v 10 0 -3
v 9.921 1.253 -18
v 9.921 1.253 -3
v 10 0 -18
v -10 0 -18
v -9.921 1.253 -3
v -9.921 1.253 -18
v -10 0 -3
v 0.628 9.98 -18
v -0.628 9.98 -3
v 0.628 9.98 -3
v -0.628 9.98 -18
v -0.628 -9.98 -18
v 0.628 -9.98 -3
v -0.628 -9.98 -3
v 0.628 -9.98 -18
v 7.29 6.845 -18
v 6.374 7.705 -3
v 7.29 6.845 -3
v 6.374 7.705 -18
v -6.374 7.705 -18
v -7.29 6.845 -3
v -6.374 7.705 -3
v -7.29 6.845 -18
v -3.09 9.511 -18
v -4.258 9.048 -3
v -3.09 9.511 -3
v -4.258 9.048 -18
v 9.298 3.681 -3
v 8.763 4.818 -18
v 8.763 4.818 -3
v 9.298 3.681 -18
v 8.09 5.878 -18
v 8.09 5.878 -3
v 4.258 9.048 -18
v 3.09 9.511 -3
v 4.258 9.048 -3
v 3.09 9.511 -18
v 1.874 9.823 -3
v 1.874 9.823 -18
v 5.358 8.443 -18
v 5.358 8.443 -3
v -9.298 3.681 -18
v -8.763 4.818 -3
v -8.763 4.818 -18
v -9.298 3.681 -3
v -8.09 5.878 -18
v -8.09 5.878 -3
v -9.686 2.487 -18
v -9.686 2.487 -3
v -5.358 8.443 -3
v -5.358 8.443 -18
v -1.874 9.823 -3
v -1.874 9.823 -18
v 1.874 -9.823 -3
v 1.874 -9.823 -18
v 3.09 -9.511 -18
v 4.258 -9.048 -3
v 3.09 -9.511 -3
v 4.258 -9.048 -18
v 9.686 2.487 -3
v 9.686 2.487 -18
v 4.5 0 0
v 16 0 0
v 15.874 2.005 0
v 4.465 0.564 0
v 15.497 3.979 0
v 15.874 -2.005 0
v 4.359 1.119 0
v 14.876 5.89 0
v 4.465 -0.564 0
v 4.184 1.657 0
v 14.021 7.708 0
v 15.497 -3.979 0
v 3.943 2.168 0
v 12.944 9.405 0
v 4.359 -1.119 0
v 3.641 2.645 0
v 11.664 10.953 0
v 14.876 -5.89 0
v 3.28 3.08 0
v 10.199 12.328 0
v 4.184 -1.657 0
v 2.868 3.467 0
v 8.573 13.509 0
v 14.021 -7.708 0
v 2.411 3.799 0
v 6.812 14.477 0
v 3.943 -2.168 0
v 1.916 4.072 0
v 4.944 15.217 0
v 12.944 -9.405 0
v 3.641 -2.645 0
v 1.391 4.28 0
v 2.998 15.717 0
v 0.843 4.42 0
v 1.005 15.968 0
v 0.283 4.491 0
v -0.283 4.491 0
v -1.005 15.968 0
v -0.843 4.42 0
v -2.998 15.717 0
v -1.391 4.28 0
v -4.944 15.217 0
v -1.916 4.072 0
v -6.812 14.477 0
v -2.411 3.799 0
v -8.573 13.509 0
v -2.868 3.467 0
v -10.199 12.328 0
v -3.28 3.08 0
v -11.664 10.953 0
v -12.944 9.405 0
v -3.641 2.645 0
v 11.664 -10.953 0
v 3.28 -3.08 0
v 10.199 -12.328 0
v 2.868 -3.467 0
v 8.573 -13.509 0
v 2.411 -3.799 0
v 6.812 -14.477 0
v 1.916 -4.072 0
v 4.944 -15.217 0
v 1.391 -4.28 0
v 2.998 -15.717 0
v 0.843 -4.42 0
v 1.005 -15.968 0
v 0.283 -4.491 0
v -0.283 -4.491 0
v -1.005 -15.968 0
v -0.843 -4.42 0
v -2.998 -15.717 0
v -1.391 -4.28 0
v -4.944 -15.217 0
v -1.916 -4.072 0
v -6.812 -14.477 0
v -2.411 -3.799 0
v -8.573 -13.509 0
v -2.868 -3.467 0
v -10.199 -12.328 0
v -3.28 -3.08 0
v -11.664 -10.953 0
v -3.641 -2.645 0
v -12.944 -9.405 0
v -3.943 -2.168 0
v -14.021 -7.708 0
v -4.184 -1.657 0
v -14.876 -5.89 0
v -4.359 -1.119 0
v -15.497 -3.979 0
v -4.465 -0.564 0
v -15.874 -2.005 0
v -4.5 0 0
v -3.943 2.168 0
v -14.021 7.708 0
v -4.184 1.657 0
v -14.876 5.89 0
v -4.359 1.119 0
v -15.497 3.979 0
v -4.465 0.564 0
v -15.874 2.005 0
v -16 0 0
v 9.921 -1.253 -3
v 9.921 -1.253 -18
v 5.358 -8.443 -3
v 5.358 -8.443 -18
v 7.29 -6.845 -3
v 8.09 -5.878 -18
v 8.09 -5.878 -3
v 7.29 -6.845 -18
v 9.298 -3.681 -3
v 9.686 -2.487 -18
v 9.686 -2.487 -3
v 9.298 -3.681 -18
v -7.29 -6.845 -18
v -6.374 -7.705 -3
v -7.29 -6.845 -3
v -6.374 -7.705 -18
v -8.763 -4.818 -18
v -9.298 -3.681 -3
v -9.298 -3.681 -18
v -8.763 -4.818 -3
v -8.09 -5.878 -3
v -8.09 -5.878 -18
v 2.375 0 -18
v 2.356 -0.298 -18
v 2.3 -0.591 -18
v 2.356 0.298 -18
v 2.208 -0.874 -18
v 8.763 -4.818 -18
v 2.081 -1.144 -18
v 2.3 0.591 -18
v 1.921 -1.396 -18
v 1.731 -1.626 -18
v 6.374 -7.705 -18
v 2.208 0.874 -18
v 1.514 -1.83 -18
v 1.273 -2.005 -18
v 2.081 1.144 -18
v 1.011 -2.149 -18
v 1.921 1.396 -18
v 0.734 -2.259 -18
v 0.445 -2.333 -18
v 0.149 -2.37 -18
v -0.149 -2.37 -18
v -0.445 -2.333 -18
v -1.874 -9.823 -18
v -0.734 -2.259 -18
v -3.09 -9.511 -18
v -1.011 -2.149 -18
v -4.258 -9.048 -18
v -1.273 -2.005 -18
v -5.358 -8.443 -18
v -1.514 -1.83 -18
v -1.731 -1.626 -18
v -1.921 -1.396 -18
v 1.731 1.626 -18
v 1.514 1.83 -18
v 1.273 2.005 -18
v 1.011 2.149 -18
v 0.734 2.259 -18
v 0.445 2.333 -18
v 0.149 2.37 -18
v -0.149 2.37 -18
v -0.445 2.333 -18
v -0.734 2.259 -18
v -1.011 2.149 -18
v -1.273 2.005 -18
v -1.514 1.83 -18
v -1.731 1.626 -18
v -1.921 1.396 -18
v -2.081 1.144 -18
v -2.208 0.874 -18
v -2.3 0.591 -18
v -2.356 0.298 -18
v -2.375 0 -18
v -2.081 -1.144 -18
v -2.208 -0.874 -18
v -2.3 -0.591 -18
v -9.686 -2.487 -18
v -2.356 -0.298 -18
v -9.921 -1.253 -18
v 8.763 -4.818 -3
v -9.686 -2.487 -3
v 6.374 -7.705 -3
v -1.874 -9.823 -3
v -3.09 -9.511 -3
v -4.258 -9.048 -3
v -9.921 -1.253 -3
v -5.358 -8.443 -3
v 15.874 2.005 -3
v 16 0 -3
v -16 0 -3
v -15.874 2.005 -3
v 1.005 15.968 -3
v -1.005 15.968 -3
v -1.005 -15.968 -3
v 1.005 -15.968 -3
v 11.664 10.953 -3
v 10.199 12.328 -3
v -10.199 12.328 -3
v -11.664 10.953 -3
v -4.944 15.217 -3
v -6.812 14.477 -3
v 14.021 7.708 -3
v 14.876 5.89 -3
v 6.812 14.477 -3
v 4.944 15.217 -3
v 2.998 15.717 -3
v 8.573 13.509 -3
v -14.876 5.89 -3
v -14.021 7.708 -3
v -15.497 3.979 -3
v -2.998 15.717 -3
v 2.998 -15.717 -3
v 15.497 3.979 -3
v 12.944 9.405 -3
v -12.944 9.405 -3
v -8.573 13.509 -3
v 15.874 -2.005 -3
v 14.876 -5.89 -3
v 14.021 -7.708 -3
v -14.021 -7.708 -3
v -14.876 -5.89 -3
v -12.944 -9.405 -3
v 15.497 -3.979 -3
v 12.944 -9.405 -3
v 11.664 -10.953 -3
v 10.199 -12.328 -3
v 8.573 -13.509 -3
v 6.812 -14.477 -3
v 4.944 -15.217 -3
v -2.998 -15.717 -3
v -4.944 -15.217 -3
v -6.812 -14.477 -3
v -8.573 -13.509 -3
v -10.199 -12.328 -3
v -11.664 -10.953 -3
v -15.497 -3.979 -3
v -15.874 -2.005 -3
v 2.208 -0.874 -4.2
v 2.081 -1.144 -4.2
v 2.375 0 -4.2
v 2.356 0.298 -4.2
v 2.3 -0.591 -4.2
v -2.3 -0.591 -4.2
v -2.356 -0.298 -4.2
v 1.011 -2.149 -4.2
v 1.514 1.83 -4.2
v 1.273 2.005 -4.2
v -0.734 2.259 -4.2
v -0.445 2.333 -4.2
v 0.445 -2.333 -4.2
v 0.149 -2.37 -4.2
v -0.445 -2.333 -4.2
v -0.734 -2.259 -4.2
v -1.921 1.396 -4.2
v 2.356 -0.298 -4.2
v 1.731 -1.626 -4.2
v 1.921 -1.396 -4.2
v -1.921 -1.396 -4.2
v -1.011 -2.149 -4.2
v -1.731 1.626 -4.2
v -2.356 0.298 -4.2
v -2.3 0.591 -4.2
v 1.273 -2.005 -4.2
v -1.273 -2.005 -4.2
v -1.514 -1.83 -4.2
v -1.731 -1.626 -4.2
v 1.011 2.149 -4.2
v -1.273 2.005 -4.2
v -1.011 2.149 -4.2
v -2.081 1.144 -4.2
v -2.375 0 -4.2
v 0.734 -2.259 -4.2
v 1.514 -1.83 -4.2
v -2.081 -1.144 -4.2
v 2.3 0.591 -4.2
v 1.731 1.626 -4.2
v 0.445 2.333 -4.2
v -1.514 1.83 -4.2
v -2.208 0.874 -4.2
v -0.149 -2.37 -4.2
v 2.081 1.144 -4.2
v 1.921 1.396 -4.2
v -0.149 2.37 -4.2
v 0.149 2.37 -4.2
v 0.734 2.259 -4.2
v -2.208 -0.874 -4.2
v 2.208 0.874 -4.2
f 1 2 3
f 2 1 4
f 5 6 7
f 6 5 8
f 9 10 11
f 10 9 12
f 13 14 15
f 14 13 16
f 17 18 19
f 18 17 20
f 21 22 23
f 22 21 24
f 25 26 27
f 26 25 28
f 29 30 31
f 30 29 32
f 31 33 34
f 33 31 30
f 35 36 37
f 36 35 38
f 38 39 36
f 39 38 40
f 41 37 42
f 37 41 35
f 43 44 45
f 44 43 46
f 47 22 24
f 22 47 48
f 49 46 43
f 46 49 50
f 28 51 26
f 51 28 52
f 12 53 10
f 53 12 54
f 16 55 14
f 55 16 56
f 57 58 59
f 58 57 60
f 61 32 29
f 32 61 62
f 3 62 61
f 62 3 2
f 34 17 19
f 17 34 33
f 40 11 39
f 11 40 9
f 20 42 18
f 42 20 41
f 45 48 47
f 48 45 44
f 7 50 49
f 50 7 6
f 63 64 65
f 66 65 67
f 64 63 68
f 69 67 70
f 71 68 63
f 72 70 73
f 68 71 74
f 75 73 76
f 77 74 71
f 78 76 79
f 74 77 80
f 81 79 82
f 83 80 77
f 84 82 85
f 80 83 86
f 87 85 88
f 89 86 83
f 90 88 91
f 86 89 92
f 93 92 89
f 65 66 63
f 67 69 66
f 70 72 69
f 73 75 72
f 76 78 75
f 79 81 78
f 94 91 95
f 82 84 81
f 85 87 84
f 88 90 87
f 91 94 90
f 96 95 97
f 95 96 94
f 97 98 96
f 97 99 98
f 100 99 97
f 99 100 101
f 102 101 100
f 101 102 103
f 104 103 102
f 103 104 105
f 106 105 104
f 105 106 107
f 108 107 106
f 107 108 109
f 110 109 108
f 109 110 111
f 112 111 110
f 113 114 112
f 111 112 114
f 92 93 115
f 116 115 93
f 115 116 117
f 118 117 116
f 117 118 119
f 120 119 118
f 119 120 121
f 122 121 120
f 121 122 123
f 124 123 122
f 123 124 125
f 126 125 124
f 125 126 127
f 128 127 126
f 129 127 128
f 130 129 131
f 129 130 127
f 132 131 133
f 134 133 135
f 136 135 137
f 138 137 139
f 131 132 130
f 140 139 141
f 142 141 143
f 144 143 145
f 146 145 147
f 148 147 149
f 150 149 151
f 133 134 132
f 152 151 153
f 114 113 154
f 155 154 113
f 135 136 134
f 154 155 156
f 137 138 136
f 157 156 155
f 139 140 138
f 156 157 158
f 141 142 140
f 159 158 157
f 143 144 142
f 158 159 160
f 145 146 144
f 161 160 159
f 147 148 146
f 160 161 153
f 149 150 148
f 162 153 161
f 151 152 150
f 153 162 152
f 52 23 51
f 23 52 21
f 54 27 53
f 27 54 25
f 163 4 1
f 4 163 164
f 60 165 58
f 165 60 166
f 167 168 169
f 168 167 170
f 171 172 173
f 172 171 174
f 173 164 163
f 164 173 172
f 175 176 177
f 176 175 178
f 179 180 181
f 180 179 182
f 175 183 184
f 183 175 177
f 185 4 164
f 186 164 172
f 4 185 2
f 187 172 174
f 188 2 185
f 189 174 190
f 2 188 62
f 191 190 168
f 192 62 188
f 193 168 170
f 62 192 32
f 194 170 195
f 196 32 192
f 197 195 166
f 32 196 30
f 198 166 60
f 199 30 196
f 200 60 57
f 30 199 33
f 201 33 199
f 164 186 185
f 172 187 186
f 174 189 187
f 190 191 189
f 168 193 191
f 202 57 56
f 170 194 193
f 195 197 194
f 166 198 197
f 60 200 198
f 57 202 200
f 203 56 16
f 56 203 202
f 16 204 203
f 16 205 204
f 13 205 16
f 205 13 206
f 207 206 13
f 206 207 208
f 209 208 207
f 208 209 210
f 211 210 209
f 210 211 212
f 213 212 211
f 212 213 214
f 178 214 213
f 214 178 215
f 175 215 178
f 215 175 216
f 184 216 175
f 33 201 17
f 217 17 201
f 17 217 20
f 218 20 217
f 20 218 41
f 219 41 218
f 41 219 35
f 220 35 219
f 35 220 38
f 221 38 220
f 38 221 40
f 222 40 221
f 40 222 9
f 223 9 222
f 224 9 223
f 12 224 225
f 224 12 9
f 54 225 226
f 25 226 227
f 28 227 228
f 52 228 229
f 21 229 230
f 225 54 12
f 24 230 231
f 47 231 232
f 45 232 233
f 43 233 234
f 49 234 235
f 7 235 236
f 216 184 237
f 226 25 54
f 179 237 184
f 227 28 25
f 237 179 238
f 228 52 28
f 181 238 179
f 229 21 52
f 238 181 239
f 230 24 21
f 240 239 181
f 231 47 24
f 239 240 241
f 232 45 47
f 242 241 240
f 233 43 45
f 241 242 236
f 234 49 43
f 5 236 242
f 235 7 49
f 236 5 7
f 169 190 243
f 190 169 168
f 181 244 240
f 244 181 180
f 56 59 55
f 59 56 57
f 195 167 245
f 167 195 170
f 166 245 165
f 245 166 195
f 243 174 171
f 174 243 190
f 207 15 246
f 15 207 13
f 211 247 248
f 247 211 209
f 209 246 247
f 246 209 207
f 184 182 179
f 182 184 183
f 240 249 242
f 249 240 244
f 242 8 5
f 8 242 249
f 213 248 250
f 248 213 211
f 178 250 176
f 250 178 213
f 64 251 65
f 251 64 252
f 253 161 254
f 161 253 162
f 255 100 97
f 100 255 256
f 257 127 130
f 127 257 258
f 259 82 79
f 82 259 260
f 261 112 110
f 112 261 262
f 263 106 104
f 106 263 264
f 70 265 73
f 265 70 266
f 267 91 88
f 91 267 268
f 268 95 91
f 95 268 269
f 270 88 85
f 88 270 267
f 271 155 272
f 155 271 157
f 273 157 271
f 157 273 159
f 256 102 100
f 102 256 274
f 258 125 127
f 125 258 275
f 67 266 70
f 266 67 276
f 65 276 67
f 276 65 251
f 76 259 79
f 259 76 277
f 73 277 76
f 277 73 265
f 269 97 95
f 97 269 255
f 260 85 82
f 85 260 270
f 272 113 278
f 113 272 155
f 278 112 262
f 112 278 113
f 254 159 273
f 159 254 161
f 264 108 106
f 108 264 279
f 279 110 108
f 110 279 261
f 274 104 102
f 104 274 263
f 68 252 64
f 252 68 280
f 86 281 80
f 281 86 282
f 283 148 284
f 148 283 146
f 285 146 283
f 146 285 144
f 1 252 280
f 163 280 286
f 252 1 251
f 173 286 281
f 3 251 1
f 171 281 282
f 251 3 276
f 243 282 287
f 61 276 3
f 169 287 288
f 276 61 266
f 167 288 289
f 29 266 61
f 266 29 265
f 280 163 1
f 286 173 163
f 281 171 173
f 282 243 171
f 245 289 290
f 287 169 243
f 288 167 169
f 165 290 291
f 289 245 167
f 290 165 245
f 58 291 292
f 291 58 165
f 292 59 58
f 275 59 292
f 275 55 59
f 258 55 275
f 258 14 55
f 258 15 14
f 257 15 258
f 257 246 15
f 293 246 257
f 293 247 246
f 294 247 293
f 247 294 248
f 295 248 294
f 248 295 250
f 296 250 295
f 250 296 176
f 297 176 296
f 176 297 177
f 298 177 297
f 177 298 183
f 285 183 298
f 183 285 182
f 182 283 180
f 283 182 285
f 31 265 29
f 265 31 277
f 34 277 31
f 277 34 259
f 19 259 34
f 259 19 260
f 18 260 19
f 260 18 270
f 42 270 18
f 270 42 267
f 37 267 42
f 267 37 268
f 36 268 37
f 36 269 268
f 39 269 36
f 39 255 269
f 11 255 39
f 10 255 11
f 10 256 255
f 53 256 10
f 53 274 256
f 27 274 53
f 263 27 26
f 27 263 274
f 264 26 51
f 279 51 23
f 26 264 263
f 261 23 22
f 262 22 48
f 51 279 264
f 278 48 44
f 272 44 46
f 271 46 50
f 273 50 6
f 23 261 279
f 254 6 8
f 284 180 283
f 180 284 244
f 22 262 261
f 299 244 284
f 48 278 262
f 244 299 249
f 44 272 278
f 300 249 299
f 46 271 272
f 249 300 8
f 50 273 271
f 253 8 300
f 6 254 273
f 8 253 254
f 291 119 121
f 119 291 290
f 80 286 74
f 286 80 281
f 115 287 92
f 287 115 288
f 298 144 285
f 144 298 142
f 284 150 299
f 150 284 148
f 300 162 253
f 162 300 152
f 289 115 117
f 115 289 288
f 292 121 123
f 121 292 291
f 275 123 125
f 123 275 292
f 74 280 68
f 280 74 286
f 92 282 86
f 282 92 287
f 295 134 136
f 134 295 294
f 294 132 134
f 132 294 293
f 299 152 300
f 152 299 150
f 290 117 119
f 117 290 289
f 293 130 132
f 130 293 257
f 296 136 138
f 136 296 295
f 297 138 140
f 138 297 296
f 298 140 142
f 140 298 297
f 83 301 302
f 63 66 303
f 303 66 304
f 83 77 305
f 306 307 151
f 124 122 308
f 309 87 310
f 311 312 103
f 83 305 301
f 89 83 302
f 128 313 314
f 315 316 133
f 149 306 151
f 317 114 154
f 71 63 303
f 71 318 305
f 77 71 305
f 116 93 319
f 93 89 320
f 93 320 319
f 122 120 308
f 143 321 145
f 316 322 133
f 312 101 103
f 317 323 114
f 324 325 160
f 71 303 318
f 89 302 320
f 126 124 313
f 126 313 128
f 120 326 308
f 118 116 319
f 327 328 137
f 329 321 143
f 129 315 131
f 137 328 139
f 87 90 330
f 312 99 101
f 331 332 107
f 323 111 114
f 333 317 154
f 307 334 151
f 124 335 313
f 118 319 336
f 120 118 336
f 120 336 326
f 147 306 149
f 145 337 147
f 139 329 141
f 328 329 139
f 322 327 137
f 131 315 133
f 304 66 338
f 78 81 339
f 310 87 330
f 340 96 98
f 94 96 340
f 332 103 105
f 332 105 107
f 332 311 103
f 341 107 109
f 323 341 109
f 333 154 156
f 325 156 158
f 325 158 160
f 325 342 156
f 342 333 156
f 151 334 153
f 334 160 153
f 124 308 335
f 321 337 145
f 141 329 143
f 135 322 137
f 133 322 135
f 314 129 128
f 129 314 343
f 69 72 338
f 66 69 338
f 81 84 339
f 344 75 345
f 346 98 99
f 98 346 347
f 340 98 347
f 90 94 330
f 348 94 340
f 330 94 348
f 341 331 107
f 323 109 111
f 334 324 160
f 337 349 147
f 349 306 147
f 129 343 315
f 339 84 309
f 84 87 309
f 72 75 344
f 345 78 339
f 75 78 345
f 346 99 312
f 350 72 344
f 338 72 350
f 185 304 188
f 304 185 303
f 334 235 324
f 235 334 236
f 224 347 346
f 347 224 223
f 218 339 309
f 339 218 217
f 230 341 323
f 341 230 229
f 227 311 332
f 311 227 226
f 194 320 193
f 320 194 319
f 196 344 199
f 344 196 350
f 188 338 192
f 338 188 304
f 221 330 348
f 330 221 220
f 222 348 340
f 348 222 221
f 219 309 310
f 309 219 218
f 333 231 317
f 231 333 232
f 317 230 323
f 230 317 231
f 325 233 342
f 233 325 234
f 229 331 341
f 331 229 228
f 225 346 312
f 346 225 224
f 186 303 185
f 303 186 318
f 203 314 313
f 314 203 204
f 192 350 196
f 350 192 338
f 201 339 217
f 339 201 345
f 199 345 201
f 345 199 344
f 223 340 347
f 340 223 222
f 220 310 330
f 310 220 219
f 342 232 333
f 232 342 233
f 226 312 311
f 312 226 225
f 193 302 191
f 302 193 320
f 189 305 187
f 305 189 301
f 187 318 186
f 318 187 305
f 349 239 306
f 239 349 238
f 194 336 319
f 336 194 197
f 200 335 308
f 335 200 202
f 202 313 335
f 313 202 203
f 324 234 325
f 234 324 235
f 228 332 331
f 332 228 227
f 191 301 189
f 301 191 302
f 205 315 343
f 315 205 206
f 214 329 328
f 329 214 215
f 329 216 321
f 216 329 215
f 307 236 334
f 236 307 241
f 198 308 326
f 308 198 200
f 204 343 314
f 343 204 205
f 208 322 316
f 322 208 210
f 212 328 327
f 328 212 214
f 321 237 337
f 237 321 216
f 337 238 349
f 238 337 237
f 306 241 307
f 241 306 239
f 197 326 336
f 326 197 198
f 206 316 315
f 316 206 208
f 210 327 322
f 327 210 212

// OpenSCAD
$fn = 50;


difference() {
	union() {
		translate(v = [0, 0, -18.0000000000]) {
			cylinder(h = 18, r = 10.0000000000);
		}
		translate(v = [0, 0, -3.0000000000]) {
			cylinder(h = 3, r = 16.0000000000);
		}
	}
	union() {
		translate(v = [0, 0, 0]) {
			rotate(a = [0, 0, 0]) {
				difference() {
					union() {
						#translate(v = [0, 0, -18.0000000000]) {
							cylinder(h = 18, r = 2.2500000000);
						}
						#translate(v = [0, 0, -4.2000000000]) {
							cylinder(h = 4.2000000000, r = 10.0000000000, r1 = 2.3750000000, r2 = 4.5000000000);
						}
						#translate(v = [0, 0, -18.0000000000]) {
							cylinder(h = 18, r = 2.3750000000);
						}
						#translate(v = [0, 0, -18.0000000000]) {
							cylinder(h = 18, r = 2.2500000000);
						}
					}
					union();
				}
			}
		}
	}
}
